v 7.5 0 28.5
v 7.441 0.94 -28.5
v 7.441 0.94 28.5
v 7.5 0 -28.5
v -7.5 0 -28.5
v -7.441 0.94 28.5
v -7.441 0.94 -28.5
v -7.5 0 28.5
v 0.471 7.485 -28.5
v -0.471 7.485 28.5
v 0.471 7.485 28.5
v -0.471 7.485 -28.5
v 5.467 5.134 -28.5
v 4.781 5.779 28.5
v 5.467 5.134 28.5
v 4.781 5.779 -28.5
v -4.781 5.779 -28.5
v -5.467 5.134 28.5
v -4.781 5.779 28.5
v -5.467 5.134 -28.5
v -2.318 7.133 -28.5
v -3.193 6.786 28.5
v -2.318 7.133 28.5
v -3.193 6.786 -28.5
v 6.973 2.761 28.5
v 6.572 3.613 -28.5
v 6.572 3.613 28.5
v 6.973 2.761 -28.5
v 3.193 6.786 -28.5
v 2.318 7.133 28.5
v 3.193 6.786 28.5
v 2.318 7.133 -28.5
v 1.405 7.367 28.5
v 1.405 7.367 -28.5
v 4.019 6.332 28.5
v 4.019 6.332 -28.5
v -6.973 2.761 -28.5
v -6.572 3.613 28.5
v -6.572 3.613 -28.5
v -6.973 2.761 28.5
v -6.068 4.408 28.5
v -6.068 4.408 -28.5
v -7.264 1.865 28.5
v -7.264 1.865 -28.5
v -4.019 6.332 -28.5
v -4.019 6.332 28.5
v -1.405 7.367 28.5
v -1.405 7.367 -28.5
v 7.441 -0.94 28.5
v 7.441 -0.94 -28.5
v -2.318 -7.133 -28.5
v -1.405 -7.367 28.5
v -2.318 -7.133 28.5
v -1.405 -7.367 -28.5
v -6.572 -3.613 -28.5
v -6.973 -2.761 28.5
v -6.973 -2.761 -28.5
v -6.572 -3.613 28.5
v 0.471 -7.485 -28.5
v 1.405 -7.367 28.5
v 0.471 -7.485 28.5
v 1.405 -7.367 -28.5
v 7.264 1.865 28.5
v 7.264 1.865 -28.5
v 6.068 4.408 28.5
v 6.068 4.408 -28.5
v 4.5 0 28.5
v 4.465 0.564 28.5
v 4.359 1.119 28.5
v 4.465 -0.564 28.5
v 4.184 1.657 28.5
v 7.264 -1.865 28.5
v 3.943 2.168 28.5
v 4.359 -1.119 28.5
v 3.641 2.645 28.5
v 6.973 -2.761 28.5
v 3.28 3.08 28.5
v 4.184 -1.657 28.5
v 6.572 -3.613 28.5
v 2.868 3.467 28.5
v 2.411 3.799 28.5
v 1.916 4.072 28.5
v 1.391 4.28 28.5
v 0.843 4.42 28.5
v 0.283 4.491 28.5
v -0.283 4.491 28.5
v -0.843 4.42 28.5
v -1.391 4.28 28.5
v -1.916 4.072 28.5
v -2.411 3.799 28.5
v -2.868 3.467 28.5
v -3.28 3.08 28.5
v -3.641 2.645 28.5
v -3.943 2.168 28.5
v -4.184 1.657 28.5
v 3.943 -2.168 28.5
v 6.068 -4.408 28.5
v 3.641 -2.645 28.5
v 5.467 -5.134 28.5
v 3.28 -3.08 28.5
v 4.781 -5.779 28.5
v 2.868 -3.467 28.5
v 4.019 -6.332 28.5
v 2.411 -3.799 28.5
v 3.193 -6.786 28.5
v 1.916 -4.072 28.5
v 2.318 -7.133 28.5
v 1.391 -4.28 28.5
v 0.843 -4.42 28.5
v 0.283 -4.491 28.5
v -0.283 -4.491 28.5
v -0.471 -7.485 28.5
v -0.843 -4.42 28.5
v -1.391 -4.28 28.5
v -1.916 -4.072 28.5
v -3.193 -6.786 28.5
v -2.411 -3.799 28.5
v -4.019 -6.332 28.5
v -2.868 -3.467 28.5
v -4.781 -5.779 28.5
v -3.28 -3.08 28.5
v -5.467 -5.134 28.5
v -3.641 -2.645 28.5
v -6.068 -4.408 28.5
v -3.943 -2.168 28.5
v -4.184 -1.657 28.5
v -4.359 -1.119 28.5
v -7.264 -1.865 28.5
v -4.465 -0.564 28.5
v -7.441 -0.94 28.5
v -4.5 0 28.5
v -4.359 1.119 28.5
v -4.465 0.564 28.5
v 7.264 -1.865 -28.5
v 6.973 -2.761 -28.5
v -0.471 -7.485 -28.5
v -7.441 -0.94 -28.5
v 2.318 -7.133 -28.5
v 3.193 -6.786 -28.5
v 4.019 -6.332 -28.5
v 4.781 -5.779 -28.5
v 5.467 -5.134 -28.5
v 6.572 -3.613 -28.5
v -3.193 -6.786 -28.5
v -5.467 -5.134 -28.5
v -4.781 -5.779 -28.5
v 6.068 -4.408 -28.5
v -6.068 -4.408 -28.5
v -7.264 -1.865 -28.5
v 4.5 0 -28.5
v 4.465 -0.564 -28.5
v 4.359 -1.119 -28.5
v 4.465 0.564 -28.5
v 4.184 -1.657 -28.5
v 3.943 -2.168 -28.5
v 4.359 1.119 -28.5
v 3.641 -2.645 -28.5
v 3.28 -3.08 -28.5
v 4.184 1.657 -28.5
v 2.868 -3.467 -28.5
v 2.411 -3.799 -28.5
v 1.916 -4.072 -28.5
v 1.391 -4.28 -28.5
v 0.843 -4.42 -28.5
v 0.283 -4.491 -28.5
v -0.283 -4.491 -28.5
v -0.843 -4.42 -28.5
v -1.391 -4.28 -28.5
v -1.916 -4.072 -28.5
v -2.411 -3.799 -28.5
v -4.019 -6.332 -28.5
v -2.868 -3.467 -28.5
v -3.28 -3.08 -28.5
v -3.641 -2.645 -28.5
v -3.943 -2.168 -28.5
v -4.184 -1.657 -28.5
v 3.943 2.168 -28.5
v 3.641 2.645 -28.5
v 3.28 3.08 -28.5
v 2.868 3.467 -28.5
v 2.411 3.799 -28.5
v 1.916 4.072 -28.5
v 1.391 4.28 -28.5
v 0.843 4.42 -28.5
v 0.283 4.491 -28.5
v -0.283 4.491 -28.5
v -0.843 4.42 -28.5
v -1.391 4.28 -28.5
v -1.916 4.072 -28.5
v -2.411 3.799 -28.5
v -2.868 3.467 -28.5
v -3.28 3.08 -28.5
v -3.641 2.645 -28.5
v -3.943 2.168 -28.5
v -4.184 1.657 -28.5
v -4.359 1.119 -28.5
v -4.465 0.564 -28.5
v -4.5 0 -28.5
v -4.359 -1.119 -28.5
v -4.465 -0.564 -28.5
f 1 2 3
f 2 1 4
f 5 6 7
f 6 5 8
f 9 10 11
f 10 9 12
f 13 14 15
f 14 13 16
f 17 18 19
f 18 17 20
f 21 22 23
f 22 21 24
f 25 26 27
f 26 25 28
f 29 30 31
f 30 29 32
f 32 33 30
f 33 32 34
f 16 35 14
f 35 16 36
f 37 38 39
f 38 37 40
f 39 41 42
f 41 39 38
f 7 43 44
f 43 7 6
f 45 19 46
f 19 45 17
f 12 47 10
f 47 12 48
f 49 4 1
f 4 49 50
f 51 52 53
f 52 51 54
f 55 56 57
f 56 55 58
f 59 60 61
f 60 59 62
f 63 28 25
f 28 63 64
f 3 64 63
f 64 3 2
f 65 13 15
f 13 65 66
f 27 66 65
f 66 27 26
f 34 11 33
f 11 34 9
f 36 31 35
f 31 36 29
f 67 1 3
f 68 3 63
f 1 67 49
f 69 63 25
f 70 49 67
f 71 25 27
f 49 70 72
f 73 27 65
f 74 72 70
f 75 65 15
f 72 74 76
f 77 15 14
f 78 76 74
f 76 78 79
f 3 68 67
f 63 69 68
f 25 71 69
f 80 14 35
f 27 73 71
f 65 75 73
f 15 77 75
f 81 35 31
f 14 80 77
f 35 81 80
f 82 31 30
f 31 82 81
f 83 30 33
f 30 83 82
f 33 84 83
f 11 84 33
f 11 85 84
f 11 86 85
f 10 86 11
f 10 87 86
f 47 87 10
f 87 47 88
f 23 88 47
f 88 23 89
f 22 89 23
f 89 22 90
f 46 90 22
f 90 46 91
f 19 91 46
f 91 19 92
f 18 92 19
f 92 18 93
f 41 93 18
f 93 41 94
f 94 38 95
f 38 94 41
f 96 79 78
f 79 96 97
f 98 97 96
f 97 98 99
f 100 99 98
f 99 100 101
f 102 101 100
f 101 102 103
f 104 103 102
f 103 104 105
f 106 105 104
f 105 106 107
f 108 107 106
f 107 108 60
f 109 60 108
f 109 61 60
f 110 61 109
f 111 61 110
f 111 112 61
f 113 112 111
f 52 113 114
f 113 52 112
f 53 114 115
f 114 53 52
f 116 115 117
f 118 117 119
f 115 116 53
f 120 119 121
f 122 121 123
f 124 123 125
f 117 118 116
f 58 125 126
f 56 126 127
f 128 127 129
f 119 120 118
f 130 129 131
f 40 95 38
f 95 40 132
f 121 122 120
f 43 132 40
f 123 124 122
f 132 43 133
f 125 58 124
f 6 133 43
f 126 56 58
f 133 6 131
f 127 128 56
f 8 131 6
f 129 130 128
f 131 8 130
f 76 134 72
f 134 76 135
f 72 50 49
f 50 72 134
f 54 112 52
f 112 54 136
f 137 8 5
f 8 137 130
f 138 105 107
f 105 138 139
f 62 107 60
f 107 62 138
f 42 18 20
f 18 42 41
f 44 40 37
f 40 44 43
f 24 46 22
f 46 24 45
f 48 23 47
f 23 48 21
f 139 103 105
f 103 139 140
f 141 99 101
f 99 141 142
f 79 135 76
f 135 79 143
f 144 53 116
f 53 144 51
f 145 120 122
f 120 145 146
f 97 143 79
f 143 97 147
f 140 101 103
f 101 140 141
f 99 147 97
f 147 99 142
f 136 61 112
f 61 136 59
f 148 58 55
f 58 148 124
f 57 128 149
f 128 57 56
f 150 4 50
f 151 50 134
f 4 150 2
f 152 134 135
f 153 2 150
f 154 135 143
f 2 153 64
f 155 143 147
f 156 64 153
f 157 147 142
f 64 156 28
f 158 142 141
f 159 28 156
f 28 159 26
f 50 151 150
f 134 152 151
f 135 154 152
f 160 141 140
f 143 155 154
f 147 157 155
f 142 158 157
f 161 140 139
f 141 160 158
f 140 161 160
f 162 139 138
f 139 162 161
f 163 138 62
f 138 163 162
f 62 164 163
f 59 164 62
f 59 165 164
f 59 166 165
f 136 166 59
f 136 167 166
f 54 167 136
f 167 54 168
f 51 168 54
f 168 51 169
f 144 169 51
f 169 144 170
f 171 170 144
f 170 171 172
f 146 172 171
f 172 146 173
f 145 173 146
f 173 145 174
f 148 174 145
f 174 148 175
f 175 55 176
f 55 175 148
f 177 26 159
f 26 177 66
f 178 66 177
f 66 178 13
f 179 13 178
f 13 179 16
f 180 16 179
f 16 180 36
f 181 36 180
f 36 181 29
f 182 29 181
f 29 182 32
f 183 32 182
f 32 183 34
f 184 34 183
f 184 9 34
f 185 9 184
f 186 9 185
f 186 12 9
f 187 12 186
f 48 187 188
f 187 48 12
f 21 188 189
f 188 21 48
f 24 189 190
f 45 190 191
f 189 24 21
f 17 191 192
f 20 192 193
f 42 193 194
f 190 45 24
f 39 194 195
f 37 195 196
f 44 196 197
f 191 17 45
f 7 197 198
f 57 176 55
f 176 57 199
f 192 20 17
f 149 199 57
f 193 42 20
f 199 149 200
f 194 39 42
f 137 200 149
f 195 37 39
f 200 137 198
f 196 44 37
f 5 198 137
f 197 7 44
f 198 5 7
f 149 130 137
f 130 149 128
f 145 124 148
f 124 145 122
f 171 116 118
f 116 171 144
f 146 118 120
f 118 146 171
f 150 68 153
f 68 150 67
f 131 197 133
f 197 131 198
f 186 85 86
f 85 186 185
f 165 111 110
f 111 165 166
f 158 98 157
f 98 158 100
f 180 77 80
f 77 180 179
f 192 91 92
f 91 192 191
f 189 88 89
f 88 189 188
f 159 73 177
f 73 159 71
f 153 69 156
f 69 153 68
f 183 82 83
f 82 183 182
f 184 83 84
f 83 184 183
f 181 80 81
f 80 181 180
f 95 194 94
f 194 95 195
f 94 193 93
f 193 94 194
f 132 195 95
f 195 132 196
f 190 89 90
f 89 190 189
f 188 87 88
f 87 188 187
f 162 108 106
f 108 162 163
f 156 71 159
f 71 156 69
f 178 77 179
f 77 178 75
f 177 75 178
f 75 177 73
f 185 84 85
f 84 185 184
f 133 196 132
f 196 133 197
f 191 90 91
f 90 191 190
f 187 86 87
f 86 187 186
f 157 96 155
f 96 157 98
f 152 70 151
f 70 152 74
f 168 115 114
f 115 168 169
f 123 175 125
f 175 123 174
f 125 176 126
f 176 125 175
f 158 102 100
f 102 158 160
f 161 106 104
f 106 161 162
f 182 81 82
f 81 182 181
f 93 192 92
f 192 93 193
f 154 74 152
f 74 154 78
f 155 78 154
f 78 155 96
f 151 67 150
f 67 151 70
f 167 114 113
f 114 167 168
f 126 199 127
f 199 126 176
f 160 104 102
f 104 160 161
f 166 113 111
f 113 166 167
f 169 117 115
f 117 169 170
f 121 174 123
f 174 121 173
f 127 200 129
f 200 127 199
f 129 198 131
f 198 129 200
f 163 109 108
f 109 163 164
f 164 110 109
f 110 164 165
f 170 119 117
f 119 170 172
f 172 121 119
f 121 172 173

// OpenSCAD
$fn = 50;


difference() {
	union() {
		translate(v = [0, 0, -28.5000000000]) {
			cylinder(h = 57, r = 7.5000000000);
		}
	}
	union() {
		translate(v = [0, 0, -100.0000000000]) {
			cylinder(h = 200, r = 4.5000000000);
		}
	}
}
